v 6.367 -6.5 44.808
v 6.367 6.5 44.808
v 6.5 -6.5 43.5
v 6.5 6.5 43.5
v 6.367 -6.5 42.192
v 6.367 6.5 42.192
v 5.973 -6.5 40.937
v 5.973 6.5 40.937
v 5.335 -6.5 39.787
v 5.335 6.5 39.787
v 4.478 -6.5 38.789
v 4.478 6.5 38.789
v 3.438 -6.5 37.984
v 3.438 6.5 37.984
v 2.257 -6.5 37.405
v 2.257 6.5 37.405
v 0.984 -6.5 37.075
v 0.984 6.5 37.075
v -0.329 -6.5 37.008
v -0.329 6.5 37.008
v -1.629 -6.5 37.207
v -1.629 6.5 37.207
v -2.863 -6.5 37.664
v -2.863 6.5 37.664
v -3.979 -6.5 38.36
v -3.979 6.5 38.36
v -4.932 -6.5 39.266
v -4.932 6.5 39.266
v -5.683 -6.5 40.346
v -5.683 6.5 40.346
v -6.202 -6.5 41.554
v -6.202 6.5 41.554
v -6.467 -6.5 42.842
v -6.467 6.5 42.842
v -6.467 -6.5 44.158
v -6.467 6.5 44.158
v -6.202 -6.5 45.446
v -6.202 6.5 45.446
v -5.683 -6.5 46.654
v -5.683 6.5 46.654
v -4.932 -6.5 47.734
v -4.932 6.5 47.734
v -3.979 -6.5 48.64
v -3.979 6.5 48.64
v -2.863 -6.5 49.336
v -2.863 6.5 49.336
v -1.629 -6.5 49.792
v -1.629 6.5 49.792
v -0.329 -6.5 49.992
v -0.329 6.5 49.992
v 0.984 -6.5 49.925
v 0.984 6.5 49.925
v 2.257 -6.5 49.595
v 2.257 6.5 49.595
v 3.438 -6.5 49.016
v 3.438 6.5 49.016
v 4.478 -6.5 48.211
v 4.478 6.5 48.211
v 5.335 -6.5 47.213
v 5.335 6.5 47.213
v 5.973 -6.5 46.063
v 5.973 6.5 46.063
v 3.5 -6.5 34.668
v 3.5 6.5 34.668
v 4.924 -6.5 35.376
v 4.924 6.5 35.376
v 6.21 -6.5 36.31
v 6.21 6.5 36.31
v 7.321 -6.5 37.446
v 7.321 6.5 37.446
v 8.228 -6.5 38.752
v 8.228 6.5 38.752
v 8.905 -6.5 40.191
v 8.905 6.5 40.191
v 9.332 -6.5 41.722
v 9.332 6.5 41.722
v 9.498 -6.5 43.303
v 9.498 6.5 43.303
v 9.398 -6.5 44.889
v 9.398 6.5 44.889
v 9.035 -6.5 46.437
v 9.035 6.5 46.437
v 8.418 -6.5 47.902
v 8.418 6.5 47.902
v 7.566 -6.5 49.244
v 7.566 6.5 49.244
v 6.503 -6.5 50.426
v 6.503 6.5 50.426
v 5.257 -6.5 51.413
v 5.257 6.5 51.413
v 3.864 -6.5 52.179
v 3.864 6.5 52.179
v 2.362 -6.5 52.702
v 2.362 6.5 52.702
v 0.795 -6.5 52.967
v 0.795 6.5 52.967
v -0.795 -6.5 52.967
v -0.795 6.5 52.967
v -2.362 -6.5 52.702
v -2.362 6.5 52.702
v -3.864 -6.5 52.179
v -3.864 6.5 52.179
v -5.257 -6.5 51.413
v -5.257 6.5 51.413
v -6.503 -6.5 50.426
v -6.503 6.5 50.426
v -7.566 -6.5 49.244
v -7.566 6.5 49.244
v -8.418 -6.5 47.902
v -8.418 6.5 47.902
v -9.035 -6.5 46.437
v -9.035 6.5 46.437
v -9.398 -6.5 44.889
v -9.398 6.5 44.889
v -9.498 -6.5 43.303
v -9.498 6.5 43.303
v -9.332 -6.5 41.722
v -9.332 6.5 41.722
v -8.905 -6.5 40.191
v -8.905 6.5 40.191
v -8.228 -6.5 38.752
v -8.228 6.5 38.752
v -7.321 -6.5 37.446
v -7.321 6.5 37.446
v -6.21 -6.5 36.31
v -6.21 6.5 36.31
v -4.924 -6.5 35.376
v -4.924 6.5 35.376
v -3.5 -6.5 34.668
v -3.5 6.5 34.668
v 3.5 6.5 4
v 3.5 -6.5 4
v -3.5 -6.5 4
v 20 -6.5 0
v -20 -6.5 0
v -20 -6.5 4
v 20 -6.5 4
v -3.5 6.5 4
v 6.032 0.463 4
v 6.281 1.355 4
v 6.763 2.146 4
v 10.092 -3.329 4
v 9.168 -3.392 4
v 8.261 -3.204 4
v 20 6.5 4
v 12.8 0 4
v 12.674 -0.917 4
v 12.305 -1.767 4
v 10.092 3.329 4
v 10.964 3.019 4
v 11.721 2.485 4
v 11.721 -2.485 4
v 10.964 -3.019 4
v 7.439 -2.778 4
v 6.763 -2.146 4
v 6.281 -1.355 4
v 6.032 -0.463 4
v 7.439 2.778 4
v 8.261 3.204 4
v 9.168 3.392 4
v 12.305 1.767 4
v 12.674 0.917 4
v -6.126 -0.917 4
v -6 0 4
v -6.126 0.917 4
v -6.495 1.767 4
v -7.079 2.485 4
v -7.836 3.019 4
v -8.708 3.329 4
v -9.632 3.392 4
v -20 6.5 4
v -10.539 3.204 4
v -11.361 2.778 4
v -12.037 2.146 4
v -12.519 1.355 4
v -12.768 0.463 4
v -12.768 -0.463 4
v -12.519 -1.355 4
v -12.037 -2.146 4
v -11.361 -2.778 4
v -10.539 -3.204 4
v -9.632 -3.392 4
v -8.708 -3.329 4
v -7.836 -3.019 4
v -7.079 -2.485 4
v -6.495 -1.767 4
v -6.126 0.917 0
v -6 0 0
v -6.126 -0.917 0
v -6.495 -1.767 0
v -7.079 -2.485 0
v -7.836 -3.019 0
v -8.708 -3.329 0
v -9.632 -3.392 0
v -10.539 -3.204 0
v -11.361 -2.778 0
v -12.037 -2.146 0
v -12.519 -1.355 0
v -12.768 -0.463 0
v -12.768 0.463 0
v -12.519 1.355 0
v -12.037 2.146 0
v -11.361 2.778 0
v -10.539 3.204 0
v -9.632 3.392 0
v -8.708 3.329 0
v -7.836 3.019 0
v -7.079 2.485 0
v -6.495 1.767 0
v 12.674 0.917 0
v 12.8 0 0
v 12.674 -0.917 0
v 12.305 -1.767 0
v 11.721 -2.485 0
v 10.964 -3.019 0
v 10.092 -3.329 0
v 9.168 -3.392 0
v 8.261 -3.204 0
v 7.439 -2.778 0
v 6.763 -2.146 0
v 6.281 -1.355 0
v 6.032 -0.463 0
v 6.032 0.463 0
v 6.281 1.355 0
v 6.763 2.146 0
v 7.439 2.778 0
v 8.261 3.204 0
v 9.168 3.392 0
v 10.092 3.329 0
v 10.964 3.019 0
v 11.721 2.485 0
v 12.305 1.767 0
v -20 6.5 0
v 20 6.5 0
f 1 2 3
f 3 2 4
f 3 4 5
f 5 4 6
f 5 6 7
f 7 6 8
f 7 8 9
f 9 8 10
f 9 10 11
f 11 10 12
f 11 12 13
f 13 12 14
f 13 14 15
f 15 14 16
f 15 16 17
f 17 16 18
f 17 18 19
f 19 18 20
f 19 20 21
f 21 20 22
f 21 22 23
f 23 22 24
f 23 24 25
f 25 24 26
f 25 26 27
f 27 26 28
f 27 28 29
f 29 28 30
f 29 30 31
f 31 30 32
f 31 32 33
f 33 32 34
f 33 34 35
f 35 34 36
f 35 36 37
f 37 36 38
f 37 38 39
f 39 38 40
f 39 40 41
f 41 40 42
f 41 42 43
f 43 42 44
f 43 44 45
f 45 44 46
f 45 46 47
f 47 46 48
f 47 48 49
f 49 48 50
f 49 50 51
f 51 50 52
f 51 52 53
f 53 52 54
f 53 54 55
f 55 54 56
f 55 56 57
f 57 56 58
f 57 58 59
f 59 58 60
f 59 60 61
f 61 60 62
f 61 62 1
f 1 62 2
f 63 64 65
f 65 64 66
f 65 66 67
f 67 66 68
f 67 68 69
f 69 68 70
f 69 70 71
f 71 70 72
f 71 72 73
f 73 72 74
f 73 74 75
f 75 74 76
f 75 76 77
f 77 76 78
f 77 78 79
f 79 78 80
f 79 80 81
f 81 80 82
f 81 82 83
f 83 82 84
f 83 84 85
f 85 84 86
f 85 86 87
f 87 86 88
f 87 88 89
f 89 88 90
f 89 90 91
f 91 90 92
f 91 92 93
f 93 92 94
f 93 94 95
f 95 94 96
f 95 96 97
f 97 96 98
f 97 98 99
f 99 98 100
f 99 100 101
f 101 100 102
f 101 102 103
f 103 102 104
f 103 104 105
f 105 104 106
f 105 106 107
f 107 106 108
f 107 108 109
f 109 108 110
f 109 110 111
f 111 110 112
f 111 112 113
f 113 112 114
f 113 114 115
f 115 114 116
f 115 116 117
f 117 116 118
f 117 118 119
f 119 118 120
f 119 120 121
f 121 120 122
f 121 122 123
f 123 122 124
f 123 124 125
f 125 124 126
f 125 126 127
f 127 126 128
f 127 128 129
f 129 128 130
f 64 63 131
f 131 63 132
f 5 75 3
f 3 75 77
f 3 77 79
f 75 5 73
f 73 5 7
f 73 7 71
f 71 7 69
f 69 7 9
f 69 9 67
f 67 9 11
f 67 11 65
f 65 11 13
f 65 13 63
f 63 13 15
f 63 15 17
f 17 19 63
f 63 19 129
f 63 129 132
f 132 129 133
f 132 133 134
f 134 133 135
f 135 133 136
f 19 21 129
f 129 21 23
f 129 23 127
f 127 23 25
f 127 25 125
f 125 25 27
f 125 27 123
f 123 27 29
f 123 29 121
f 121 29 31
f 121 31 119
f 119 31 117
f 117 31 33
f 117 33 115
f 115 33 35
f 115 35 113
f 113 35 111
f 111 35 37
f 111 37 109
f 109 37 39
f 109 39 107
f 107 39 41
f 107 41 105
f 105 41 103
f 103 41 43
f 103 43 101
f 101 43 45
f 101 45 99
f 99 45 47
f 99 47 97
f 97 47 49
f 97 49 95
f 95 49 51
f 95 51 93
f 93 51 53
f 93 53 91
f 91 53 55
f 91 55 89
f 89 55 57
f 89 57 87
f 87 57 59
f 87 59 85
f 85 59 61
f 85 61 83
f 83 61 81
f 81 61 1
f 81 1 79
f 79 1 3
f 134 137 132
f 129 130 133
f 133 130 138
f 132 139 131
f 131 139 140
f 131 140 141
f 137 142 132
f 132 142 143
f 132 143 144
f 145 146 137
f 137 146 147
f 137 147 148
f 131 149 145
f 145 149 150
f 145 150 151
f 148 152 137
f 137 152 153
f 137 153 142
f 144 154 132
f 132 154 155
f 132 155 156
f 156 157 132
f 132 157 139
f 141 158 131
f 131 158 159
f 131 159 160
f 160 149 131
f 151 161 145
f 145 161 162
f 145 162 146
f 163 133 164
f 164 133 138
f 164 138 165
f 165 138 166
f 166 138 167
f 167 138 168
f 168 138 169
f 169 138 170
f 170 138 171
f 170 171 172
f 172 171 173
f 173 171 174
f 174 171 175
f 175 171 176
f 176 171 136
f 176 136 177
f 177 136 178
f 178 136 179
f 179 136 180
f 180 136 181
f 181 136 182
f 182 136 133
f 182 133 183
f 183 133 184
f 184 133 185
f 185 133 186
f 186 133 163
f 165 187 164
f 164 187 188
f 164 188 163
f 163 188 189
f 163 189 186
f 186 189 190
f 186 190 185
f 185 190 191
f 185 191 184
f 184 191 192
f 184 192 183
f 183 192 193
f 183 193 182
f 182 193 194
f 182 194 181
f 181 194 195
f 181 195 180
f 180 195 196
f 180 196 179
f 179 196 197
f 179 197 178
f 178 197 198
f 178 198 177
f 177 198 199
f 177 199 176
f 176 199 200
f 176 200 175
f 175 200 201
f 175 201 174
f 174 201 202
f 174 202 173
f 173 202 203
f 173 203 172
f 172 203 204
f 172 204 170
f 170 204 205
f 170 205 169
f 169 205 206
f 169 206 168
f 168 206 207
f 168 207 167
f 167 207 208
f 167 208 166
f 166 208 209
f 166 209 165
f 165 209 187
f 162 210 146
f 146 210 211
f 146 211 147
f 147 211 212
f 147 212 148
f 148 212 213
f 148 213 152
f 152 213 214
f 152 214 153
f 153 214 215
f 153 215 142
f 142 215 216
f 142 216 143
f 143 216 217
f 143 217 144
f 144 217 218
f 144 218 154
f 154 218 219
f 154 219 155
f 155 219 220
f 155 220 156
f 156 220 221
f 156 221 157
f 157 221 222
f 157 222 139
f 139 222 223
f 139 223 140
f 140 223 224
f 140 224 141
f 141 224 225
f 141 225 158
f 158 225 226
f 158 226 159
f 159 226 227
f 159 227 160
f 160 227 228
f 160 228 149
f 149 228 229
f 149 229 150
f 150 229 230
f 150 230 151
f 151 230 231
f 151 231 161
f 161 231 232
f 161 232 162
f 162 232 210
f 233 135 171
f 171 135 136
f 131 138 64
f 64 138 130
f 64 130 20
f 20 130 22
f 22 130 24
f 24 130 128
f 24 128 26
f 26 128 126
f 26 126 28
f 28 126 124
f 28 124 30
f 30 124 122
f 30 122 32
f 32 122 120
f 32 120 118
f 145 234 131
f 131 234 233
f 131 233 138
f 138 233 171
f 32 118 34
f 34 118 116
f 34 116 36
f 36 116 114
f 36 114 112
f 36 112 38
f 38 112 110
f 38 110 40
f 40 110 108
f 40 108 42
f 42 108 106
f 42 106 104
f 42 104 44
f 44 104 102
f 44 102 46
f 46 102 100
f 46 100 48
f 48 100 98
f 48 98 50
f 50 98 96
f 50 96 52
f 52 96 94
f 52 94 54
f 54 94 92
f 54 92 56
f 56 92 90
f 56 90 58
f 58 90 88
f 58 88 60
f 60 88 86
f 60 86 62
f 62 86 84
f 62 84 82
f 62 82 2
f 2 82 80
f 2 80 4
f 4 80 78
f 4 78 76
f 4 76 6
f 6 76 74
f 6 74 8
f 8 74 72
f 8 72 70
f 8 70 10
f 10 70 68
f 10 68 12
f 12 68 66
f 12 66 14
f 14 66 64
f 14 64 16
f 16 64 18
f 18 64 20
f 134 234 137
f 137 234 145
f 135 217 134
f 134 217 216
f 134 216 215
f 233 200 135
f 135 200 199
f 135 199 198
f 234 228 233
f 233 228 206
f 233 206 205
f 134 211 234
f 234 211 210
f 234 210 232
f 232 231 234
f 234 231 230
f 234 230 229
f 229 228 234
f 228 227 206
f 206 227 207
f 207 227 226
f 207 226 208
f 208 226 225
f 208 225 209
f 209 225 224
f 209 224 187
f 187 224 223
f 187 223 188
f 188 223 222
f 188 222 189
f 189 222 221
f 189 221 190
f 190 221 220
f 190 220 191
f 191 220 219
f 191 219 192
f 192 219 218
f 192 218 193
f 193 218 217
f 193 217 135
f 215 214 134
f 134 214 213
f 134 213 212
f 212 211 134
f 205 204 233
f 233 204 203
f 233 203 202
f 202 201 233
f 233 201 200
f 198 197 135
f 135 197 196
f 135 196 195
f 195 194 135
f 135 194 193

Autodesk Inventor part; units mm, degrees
ref_plane "YZ Plane" through (0, 0, 0) normal (1, 0, 0) x (0, 1, 0)
ref_plane "XZ Plane" through (0, 0, 0) normal (0, 1, 0) x (-1, 0, 0)
sketch "草圖1" plane through (0, 0, 0) normal (0, 0, 1) x (1, 0, 0)
  line L0 (-20, 6.5) -> (20, 6.5)
  line L1 (20, 6.5) -> (20, -6.5)
  line L2 (20, -6.5) -> (-20, -6.5)
  line L3 (-20, -6.5) -> (-20, 6.5)
  line L4 (-20, 6.5) -> (20, -6.5) construction
  line L5 (20, 6.5) -> (-20, -6.5) construction
  circle A0 centre (-9.4, 0) radius 3.4
  circle A1 centre (9.4, 0) radius 3.4
  point P0 (0, 0)
  dimension "d0" = 40
  dimension "d1" = 13
  dimension "d2" = 6.8
  dimension "d3" = 6.8
extrude "擠出1" add sketch "草圖1" along normal blind 4
sketch "草圖3" plane through (0, 0, 4) normal (0, 0, 1) x (1, 0, 0)
  line L0 (3.5, -6.5) -> (-3.5, -6.5)
  line L1 (-3.5, -6.5) -> (-3.5, 6.5)
  line L2 (-3.5, 6.5) -> (3.5, 6.5)
  line L3 (3.5, 6.5) -> (3.5, -6.5)
  line L4 (3.5, -6.5) -> (-3.5, 6.5) construction
  line L5 (-3.5, -6.5) -> (3.5, 6.5) construction
  point P0 (0, 0)
  dimension "d8" = 7
  dimension "d9" = 13
extrude "擠出2" add sketch "草圖3" along normal blind 33
ref_plane "工作平面3" through (-20, 0, 0) normal (0, 1, 0) x (1, 0, 0)
sketch "草圖5" plane through (-20, 0, 0) normal (0, 1, 0) x (1, 0, 0)
  circle A0 centre (20, -43.5) radius 6.5
  circle A1 centre (20, -43.5) radius 9.5
  point P0 (20, 0)
  dimension "d22" = 13
  dimension "d23" = 19
extrude "擠出4" add sketch "草圖5" along normal mid plane 13
properties part number "T字形固定件v2"
